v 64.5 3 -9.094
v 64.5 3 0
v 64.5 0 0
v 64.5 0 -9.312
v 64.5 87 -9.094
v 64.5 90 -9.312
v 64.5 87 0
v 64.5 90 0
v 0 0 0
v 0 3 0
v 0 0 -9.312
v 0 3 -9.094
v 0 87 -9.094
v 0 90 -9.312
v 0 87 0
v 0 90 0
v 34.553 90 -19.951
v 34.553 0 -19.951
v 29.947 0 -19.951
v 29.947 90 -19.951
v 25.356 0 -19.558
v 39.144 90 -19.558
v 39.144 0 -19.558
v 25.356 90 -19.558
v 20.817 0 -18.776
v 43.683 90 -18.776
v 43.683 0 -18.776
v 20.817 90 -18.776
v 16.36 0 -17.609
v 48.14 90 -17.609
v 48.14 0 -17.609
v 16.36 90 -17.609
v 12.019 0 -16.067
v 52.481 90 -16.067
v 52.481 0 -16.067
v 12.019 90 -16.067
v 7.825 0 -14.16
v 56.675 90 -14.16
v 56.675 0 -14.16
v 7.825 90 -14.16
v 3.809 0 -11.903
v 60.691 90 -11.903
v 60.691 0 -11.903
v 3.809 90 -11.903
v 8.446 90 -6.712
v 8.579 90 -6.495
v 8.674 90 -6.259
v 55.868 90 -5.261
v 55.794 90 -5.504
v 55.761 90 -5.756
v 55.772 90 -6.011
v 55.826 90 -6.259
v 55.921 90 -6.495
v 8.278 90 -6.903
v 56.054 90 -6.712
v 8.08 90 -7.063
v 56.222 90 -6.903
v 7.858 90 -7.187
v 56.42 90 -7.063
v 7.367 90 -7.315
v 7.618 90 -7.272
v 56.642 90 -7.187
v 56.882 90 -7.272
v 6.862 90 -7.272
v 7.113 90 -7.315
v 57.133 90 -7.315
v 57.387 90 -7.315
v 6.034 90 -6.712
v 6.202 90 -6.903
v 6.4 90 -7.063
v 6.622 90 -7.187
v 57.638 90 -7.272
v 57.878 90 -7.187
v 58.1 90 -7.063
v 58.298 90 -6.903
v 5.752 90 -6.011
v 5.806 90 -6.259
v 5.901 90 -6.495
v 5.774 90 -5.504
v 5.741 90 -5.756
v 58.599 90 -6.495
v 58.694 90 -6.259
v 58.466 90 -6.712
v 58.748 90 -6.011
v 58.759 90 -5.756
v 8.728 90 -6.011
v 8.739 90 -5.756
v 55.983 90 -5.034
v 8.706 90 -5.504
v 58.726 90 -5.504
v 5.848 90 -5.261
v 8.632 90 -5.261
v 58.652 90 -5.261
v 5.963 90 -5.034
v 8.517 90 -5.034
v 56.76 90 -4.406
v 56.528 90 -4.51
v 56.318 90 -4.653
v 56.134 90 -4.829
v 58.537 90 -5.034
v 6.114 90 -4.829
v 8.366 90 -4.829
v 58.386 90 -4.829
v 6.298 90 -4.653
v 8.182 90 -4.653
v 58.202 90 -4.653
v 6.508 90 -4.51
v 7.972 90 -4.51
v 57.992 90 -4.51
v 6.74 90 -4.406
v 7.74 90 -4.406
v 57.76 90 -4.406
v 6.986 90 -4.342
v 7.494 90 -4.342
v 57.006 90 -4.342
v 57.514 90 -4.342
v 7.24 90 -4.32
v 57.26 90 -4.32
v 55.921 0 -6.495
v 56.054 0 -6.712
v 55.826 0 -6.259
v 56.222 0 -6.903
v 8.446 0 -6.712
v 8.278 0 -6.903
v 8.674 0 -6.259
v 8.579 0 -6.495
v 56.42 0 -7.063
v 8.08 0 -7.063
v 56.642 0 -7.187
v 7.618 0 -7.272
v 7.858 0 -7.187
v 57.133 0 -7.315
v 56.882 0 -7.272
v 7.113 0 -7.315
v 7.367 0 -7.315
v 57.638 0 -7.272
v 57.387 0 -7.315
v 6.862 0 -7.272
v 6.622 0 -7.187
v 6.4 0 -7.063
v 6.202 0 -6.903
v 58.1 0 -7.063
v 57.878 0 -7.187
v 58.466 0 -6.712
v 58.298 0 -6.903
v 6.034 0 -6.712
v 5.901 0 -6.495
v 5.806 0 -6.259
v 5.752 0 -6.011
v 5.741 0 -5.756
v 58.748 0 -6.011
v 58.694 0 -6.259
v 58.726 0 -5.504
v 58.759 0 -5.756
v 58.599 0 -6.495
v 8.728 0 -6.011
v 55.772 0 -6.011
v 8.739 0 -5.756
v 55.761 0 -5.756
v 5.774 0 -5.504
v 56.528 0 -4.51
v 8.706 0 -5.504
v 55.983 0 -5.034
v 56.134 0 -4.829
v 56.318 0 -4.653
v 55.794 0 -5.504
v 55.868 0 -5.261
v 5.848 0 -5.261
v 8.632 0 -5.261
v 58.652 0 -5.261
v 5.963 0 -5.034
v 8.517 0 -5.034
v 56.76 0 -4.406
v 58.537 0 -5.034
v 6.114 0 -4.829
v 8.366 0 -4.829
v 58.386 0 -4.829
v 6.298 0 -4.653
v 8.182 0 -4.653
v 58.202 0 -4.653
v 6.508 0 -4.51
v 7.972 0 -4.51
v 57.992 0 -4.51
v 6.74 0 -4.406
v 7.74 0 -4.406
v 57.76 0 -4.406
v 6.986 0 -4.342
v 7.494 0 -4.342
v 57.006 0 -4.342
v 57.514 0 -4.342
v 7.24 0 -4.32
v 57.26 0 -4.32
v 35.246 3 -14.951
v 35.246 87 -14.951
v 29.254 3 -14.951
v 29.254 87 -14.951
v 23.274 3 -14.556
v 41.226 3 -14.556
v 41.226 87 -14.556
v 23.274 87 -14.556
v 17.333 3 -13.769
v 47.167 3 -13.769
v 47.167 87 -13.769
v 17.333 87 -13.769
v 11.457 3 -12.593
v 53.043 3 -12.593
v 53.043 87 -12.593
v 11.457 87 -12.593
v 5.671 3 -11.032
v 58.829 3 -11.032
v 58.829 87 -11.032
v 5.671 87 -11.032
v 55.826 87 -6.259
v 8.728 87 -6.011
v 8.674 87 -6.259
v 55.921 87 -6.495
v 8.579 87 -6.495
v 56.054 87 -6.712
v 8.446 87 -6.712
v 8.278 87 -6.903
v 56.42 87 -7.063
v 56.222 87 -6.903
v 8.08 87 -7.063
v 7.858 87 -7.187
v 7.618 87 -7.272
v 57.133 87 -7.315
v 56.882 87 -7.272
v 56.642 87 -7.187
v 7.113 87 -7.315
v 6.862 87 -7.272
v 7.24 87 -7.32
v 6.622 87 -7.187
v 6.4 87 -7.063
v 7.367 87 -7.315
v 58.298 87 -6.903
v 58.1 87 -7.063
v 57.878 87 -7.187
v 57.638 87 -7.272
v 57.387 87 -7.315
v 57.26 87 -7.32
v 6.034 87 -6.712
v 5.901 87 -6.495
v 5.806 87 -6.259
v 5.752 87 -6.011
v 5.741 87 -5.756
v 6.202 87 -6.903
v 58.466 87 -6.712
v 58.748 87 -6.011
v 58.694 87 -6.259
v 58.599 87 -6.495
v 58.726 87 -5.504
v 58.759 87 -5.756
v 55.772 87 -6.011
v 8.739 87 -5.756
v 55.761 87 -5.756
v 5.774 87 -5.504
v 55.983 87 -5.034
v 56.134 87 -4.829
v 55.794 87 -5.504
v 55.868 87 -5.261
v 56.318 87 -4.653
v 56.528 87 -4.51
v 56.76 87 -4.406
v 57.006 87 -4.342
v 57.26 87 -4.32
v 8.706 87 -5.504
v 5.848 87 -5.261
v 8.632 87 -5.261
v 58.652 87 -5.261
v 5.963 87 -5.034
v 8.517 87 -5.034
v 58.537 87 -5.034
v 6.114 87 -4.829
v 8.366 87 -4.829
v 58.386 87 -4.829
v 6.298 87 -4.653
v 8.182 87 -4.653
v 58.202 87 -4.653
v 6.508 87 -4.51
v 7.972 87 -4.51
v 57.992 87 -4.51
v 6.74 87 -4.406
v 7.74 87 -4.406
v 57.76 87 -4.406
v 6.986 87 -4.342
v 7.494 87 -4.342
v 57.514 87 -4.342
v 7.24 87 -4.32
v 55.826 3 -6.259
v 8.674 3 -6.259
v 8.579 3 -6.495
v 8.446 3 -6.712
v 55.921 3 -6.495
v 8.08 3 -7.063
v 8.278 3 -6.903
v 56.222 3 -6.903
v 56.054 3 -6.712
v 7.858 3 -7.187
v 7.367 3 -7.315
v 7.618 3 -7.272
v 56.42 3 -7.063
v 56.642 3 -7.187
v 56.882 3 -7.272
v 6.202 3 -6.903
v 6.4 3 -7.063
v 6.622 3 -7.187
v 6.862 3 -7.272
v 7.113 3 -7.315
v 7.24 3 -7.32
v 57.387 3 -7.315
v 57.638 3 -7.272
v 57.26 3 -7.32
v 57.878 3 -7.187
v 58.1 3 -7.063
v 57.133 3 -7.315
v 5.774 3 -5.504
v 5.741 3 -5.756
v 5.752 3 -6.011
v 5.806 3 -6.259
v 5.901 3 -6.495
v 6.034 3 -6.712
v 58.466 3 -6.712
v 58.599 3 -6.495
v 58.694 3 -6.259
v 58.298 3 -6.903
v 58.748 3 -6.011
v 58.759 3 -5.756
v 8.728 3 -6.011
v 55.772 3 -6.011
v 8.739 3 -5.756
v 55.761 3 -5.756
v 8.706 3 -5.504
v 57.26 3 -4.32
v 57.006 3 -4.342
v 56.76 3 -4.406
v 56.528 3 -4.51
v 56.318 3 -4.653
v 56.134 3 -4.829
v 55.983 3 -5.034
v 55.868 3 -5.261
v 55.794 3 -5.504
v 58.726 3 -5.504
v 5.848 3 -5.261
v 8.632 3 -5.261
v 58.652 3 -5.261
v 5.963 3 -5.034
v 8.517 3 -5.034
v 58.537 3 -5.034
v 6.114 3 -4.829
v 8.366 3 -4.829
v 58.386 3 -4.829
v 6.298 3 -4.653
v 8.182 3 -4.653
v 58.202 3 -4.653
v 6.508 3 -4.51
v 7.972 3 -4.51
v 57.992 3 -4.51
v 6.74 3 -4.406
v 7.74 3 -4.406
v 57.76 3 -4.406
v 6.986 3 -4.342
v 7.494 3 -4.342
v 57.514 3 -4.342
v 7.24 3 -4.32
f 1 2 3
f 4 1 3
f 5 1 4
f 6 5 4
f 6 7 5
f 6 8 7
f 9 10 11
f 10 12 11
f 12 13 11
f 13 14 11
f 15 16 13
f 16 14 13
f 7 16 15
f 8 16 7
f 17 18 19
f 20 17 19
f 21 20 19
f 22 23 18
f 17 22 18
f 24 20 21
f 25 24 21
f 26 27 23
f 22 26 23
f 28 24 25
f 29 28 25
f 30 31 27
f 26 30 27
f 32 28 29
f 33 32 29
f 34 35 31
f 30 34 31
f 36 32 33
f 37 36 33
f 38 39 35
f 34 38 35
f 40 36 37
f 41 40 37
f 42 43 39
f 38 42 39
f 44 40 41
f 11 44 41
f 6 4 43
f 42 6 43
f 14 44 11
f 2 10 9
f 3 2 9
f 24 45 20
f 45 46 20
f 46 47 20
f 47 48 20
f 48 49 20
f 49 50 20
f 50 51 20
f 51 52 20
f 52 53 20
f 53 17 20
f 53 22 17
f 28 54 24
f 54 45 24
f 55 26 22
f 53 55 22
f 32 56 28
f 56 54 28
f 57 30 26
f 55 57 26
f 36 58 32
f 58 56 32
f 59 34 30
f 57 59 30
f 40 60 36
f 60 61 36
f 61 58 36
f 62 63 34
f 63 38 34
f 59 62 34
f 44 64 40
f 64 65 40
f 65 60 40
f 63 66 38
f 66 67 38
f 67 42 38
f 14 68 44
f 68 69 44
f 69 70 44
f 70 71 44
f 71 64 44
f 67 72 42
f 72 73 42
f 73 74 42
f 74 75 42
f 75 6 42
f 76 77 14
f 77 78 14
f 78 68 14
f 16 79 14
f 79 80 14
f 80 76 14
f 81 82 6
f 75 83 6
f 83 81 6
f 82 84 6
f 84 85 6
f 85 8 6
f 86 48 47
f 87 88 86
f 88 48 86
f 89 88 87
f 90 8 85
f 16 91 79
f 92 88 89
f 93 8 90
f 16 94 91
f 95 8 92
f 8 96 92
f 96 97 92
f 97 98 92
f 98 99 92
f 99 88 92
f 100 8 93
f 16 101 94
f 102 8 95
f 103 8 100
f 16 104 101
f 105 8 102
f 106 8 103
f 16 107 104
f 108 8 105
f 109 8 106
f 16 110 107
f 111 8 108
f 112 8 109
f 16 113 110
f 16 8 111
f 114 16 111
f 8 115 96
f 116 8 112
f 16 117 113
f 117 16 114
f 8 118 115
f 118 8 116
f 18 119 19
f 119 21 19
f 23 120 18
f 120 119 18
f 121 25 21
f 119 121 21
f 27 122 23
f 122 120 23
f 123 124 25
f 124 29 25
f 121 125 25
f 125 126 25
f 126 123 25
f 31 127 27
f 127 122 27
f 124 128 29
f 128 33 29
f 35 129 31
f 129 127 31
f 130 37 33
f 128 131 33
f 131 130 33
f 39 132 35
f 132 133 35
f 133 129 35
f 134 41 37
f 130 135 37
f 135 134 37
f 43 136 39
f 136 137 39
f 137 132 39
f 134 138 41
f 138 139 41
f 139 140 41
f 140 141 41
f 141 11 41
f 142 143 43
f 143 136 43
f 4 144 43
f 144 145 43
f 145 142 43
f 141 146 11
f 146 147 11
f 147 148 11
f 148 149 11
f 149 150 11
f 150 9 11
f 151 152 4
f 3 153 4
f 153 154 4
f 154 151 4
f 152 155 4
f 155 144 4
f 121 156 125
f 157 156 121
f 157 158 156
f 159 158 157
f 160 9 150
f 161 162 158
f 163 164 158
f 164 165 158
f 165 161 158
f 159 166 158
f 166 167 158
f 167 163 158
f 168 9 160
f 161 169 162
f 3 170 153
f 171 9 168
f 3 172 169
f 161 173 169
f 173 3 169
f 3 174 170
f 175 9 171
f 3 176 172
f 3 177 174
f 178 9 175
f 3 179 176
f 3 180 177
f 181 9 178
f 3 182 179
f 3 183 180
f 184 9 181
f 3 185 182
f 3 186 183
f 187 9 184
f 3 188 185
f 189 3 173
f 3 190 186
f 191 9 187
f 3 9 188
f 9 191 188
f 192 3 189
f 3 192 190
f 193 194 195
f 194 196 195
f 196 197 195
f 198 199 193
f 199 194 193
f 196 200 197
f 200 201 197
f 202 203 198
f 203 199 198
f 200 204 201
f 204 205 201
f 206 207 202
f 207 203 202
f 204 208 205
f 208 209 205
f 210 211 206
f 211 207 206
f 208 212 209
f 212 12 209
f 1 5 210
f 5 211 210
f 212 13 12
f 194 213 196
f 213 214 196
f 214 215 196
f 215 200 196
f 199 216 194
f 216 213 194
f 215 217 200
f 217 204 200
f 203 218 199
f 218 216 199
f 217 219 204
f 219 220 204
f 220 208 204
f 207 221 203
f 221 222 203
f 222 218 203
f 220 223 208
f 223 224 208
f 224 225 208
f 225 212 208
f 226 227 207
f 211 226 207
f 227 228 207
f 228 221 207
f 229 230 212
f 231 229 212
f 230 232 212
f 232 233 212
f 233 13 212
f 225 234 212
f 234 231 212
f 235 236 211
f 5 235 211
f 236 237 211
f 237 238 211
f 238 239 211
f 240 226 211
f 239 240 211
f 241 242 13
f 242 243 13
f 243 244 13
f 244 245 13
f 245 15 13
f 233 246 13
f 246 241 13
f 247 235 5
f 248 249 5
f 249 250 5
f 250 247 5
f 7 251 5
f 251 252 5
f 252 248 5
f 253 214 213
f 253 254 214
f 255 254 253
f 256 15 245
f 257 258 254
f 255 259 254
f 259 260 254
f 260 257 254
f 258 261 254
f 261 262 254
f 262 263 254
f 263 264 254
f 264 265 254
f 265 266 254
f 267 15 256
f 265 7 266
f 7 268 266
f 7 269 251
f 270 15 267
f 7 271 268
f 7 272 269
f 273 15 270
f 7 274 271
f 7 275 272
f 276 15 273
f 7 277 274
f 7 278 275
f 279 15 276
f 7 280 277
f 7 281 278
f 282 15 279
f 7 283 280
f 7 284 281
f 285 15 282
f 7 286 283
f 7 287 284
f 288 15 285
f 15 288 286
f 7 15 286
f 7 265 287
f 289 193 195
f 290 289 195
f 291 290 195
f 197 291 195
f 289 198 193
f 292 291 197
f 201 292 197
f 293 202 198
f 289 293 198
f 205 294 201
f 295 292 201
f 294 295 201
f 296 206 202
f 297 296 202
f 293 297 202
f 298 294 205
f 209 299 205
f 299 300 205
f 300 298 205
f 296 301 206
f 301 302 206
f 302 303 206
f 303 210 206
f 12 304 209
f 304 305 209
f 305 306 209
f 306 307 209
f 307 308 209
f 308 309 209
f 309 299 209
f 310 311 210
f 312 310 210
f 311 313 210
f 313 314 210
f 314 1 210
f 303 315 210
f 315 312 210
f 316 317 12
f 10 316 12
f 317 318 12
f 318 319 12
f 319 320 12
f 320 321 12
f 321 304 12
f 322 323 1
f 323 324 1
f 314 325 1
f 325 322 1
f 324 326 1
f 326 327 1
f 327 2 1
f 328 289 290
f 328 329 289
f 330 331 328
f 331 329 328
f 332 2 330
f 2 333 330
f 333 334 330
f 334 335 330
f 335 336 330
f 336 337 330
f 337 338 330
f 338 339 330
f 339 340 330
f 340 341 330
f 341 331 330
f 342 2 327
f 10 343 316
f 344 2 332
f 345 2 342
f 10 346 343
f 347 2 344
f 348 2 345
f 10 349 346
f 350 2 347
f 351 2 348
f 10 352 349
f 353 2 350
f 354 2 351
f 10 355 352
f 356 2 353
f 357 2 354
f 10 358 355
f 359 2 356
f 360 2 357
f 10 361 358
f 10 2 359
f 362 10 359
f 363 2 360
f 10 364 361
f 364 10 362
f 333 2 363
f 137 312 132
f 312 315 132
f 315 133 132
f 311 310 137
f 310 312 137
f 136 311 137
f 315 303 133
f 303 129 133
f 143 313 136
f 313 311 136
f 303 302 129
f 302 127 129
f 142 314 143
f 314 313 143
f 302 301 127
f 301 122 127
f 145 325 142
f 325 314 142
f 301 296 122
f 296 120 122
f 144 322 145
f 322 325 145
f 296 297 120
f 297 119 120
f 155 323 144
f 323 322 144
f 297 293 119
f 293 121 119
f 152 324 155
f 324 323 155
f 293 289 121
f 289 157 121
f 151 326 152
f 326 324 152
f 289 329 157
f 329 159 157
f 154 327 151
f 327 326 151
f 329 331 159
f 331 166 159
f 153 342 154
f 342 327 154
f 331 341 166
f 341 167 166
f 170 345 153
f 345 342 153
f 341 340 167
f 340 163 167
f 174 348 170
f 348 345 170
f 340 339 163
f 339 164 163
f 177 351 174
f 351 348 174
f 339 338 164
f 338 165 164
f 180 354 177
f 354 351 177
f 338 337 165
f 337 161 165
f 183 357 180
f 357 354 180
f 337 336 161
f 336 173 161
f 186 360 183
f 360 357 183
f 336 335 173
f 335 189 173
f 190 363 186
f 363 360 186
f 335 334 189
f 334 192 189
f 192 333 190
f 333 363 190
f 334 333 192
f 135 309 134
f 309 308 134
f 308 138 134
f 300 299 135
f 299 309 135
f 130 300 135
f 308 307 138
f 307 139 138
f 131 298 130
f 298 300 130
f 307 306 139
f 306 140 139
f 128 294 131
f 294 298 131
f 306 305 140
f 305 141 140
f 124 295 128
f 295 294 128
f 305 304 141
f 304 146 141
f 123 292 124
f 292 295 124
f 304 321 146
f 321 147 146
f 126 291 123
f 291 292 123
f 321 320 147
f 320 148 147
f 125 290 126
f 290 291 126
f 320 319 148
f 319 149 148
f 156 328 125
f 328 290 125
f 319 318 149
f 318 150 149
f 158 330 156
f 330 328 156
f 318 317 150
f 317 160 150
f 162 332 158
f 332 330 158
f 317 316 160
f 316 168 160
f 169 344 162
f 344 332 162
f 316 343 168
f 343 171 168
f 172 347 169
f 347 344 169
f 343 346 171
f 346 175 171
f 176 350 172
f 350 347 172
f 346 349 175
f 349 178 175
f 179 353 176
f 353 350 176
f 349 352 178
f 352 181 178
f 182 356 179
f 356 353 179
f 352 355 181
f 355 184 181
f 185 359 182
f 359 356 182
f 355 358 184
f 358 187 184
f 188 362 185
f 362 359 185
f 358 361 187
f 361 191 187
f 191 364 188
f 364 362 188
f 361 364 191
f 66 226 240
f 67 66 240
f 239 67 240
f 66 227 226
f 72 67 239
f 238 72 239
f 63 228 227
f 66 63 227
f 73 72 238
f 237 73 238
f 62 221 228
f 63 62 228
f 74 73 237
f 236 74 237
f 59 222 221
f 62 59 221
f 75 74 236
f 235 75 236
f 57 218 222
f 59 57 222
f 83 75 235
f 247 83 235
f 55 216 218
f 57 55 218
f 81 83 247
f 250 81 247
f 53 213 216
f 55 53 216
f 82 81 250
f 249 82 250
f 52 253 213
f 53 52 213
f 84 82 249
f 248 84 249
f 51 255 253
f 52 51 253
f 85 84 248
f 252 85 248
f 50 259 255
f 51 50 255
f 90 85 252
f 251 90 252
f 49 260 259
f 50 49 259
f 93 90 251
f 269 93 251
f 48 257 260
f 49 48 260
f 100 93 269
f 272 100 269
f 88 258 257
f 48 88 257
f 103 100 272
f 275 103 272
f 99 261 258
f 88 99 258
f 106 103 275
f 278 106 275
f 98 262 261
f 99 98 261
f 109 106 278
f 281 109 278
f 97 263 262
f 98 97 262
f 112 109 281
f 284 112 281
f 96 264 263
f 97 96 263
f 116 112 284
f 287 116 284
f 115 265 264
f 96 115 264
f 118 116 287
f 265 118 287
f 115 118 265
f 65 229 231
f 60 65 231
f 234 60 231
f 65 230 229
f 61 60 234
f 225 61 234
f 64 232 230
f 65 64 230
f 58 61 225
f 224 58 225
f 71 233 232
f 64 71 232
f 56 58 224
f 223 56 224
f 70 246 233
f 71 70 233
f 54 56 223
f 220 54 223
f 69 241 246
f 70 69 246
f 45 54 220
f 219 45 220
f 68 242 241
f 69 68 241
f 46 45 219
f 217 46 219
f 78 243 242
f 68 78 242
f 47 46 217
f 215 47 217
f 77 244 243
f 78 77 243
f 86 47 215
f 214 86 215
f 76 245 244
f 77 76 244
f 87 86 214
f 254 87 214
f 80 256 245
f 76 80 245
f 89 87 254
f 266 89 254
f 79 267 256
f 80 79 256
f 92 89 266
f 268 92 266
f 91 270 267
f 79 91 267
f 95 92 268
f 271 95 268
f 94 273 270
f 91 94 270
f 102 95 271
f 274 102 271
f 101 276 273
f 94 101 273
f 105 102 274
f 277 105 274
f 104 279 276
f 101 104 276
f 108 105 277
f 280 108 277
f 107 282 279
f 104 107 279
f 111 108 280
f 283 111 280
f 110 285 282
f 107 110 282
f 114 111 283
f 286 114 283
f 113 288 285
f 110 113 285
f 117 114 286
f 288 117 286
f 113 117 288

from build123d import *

# Parameters (mm, degrees)
RESSALTO_EXTRUS_O1_DEPTH = 90
ESBO_O3_W                = 91
ESBO_O3_H                = 84
ESBO_O4_R                = 1.5
CORTE_EXTRUS_O1_DEPTH    = 113.517776373


with BuildPart() as part:
    # Esboço1 → Ressalto-extrusão1 (new body)
    with BuildSketch(Plane(origin=(0, 0, 0), x_dir=(1, 0, 0), z_dir=(0, 1, 0))):
        with BuildLine():
            Line((0, 0), (64.5, 0))
            Line((64.5, 0), (64.5, 9.312094154))
            ThreePointArc((64.5, 9.312094154), (32.25, 20), (0, 9.312094154))
            Line((0, 9.312094154), (0, 0))
        make_face()
    extrude(amount=RESSALTO_EXTRUS_O1_DEPTH)

    # Esboço3 → Corte-Revolução2 (revolve, cut)
    with BuildSketch(Plane(origin=(32.25, 0, 0), x_dir=(0, 0, -1), z_dir=(1, 0, 0))):
        with Locations((-30.5, 45)):
            Rectangle(ESBO_O3_W, ESBO_O3_H)
    revolve(axis=Axis((32.25, 87, 76), (0, -1, 0)), mode=Mode.SUBTRACT)

    # Esboço4 → Corte-extrusão1 (cut, through all)
    with BuildSketch(Plane(origin=(0, 90, 0), x_dir=(1, 0, 0), z_dir=(0, 1, 0))):
        with Locations(Location((7.24, 5.82, 0), (0, 0, 270))):
            Circle(ESBO_O4_R)
        with Locations(Location((57.26, 5.82, 0), (0, 0, 270))):
            Circle(ESBO_O4_R)
    extrude(amount=-CORTE_EXTRUS_O1_DEPTH, mode=Mode.SUBTRACT)


solid = part.part
